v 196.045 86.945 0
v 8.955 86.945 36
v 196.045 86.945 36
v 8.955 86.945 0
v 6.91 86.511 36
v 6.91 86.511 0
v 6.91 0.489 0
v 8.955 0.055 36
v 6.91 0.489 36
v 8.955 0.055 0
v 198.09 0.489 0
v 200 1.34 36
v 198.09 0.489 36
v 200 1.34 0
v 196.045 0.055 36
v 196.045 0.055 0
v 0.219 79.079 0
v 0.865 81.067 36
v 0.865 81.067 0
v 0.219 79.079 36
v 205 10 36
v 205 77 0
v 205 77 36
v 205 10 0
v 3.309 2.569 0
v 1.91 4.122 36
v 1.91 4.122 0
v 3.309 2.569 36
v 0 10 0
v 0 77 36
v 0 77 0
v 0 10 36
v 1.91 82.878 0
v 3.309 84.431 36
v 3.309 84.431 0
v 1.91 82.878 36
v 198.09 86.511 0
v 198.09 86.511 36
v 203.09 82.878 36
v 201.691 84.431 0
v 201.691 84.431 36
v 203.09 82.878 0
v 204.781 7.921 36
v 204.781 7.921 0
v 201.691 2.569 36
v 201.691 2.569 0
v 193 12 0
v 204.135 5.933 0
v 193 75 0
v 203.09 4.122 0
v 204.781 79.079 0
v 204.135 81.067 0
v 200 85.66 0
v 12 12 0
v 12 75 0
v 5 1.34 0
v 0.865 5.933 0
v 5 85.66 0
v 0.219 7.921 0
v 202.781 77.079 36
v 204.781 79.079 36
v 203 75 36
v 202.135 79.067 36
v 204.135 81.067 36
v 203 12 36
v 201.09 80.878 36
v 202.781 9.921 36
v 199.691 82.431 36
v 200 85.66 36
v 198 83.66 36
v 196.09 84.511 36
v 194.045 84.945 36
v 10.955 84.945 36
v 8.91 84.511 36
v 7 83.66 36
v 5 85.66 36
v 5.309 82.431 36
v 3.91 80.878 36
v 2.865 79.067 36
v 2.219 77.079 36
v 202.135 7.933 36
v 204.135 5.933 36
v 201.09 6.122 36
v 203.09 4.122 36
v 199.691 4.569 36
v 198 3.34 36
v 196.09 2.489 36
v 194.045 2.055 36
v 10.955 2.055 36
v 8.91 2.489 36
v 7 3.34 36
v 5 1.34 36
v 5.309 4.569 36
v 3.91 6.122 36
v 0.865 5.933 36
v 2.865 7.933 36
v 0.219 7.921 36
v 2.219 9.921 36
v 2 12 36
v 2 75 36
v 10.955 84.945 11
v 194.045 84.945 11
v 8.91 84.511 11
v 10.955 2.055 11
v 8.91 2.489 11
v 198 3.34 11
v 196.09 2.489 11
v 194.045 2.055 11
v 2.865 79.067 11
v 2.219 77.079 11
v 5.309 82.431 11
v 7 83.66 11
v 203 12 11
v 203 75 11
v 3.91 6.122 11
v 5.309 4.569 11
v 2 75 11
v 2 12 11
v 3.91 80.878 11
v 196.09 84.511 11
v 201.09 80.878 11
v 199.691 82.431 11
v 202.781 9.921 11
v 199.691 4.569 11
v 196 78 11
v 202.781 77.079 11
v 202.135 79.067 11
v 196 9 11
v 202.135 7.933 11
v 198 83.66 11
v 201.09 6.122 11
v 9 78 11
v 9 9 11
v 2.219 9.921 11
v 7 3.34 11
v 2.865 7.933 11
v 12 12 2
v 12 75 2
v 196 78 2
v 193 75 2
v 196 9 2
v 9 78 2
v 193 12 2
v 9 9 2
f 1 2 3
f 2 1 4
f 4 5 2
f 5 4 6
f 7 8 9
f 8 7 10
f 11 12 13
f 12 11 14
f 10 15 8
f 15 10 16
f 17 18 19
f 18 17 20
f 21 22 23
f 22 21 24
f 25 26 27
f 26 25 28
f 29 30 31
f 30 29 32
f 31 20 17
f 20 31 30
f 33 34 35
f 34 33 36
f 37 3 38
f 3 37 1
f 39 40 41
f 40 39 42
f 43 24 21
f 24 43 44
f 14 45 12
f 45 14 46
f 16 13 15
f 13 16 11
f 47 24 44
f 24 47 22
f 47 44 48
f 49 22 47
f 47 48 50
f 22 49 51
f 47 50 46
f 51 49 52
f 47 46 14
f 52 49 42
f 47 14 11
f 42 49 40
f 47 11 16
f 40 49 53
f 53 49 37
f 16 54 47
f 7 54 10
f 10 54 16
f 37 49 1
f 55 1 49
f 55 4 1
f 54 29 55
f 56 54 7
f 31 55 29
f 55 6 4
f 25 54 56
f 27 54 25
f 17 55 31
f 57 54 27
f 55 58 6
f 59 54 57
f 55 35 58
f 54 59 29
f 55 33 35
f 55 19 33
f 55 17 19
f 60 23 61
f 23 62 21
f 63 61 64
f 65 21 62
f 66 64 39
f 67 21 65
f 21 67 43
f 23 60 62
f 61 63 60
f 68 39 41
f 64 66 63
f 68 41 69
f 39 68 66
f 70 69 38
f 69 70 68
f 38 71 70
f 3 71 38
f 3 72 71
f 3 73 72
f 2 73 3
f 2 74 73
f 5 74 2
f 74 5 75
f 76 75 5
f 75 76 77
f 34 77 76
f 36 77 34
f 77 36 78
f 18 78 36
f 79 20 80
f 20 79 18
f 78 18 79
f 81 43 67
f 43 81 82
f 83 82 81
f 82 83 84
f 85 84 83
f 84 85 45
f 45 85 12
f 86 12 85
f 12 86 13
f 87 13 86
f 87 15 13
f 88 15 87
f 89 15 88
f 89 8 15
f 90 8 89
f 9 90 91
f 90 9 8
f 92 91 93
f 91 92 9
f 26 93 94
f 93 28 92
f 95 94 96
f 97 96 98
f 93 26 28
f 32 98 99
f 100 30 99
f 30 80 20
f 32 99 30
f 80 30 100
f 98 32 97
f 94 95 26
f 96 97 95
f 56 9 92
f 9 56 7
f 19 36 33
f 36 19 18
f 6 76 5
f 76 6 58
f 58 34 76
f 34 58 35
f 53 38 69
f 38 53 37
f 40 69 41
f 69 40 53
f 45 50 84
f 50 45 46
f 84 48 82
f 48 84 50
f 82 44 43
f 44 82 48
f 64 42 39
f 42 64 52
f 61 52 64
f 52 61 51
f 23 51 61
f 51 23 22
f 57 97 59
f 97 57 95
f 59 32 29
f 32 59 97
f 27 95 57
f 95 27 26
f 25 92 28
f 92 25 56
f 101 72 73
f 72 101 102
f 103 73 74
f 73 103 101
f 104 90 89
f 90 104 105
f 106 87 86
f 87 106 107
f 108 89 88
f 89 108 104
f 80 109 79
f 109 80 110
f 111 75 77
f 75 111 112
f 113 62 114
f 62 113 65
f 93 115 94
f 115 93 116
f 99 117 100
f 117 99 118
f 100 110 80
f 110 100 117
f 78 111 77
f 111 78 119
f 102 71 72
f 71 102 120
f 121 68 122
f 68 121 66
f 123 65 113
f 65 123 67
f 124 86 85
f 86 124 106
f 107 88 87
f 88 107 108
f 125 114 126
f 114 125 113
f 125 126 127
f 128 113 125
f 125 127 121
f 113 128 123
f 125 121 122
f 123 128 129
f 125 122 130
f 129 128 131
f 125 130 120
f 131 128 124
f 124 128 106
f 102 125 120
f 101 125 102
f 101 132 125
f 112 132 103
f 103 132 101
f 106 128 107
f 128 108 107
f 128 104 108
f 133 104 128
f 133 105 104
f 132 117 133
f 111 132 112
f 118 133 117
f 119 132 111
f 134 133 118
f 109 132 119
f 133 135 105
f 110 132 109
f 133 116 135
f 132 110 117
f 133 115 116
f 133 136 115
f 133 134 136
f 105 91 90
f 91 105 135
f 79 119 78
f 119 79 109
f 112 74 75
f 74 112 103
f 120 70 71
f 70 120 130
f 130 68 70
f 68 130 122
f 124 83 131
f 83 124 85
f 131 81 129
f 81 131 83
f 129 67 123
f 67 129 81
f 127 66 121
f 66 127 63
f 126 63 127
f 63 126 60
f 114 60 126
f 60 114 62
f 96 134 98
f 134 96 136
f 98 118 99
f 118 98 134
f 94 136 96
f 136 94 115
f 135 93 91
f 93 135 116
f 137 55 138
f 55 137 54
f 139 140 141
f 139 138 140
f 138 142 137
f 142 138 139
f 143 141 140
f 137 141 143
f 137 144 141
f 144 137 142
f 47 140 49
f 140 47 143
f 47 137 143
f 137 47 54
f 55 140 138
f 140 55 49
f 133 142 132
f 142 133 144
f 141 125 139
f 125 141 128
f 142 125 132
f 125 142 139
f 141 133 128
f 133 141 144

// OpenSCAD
cellHorPeriod = 10;
cellVertPeriod = 10;
bordHorThick = 0.7;
bordVertThick = 0.7;
horThick = 0.7;
verThick = 0.7;
horCells = 17;
vertCells = 5;
gridHeight = 5;
gridLength = horCells*cellHorPeriod+horThick/2+2*bordVertThick;
gridWidth = vertCells*cellVertPeriod+verThick/2+2*bordHorThick;

glassWidth = 68+1;
glassLength = 186+1;
glassHeight = 4;

wallThick = 2;
pcbBorder = 7;

caseLength = glassLength+2*pcbBorder+2*wallThick;
caseWidth = glassWidth+2*pcbBorder+2*wallThick;
caseHeight = gridHeight+glassHeight+wallThick+25;
glassBorder = 3;


/*
*/
/*
difference() {
    hull() {
    for (t =  [[0,0,0],[gridLength,0,0],[gridLength,gridWidth,0],[0,gridWidth,0]])
        translate(t) {
            cylinder(r=10, h=gridHeight);
        }
    }
	cube([gridLength,gridWidth,gridHeight]);
}
*/

/*
translate([wallThick+pcbBorder,wallThick+pcbBorder,wallThick]) {
color("gray", 1) {
    translate([(glassLength-gridLength)/2,(glassWidth-gridWidth)/2,glassHeight]) {
        difference() {
            cube([gridLength,gridWidth,gridHeight]);

            for (i = [0:horCells-1]) {
                for (j = [0:vertCells-1]) {
                    translate([i*cellHorPeriod + horThick/2 + bordVertThick, j*cellVertPeriod + verThick/2 + bordHorThick, -gridHeight]) {
                        cube([cellHorPeriod - horThick/2, cellVertPeriod - verThick/2, gridHeight*3]);
                    }
                }
            }
        }
    }
}
color("blue", 0.4)
    translate([0,0,0]) {
        cube([glassLength, glassWidth, glassHeight]);
    }
color("black", 1)
    translate([0,0,glassHeight]) {
        difference() {
            cube([glassLength, glassWidth, gridHeight]);
            translate([(glassLength-gridLength)/2,(glassWidth-gridWidth)/2,0]) {
                cube([gridLength,gridWidth,gridHeight]);
            }
            translate([2,2,0]) {
                cube([5,5,gridHeight]);
            }
            translate([glassLength-2-5,2,0]) {
                cube([5,5,gridHeight]);
            }
            translate([2,glassWidth-2-5,0]) {
                cube([5,5,gridHeight]);
            }
            translate([glassLength-2-5,glassWidth-2-5,0]) {
                cube([5,5,gridHeight]);
            }
        }
    }
}
*/
    
//cube([glassLength+0.5, glassWidth+0.5, gridHeight+glassHeight]);


difference() {
    translate([0,0,0]) {
        rad = 10;
        width = caseWidth;
        length = caseLength;
        height = caseHeight;
        hull() {
        for (t =  [[rad,rad,0],[length-rad,rad,0],[length-rad,width-rad,0],[rad,width-rad,0]])
            translate(t) {
                cylinder(r=10, h=height);
            }
        }
//        cube([caseLength, caseWidth, caseHeight]);
    }
    translate([wallThick,wallThick,wallThick+glassHeight+gridHeight]) {
        rad = 10;
        width = caseWidth - 2*wallThick;
        length = caseLength - 2*wallThick;
        height = caseHeight - wallThick - glassHeight - gridHeight;
        hull() {
        for (t =  [[rad,rad,0],[length-rad,rad,0],[length-rad,width-rad,0],[rad,width-rad,0]])
            translate(t) {
                cylinder(r=10, h=height);
            }
        }
//        cube([caseLength - 2*wallThick, caseWidth - 2*wallThick, caseHeight - wallThick - glassHeight - gridHeight]);
    }
    translate([pcbBorder+wallThick+glassBorder,pcbBorder+wallThick+glassBorder,0]) {
        cube([glassLength - 2*glassBorder, glassWidth - 2*glassBorder, wallThick]);
    }
    translate([pcbBorder+wallThick,pcbBorder+wallThick,wallThick]) {
        cube([glassLength, glassWidth, gridHeight+glassHeight]);
    }
}
